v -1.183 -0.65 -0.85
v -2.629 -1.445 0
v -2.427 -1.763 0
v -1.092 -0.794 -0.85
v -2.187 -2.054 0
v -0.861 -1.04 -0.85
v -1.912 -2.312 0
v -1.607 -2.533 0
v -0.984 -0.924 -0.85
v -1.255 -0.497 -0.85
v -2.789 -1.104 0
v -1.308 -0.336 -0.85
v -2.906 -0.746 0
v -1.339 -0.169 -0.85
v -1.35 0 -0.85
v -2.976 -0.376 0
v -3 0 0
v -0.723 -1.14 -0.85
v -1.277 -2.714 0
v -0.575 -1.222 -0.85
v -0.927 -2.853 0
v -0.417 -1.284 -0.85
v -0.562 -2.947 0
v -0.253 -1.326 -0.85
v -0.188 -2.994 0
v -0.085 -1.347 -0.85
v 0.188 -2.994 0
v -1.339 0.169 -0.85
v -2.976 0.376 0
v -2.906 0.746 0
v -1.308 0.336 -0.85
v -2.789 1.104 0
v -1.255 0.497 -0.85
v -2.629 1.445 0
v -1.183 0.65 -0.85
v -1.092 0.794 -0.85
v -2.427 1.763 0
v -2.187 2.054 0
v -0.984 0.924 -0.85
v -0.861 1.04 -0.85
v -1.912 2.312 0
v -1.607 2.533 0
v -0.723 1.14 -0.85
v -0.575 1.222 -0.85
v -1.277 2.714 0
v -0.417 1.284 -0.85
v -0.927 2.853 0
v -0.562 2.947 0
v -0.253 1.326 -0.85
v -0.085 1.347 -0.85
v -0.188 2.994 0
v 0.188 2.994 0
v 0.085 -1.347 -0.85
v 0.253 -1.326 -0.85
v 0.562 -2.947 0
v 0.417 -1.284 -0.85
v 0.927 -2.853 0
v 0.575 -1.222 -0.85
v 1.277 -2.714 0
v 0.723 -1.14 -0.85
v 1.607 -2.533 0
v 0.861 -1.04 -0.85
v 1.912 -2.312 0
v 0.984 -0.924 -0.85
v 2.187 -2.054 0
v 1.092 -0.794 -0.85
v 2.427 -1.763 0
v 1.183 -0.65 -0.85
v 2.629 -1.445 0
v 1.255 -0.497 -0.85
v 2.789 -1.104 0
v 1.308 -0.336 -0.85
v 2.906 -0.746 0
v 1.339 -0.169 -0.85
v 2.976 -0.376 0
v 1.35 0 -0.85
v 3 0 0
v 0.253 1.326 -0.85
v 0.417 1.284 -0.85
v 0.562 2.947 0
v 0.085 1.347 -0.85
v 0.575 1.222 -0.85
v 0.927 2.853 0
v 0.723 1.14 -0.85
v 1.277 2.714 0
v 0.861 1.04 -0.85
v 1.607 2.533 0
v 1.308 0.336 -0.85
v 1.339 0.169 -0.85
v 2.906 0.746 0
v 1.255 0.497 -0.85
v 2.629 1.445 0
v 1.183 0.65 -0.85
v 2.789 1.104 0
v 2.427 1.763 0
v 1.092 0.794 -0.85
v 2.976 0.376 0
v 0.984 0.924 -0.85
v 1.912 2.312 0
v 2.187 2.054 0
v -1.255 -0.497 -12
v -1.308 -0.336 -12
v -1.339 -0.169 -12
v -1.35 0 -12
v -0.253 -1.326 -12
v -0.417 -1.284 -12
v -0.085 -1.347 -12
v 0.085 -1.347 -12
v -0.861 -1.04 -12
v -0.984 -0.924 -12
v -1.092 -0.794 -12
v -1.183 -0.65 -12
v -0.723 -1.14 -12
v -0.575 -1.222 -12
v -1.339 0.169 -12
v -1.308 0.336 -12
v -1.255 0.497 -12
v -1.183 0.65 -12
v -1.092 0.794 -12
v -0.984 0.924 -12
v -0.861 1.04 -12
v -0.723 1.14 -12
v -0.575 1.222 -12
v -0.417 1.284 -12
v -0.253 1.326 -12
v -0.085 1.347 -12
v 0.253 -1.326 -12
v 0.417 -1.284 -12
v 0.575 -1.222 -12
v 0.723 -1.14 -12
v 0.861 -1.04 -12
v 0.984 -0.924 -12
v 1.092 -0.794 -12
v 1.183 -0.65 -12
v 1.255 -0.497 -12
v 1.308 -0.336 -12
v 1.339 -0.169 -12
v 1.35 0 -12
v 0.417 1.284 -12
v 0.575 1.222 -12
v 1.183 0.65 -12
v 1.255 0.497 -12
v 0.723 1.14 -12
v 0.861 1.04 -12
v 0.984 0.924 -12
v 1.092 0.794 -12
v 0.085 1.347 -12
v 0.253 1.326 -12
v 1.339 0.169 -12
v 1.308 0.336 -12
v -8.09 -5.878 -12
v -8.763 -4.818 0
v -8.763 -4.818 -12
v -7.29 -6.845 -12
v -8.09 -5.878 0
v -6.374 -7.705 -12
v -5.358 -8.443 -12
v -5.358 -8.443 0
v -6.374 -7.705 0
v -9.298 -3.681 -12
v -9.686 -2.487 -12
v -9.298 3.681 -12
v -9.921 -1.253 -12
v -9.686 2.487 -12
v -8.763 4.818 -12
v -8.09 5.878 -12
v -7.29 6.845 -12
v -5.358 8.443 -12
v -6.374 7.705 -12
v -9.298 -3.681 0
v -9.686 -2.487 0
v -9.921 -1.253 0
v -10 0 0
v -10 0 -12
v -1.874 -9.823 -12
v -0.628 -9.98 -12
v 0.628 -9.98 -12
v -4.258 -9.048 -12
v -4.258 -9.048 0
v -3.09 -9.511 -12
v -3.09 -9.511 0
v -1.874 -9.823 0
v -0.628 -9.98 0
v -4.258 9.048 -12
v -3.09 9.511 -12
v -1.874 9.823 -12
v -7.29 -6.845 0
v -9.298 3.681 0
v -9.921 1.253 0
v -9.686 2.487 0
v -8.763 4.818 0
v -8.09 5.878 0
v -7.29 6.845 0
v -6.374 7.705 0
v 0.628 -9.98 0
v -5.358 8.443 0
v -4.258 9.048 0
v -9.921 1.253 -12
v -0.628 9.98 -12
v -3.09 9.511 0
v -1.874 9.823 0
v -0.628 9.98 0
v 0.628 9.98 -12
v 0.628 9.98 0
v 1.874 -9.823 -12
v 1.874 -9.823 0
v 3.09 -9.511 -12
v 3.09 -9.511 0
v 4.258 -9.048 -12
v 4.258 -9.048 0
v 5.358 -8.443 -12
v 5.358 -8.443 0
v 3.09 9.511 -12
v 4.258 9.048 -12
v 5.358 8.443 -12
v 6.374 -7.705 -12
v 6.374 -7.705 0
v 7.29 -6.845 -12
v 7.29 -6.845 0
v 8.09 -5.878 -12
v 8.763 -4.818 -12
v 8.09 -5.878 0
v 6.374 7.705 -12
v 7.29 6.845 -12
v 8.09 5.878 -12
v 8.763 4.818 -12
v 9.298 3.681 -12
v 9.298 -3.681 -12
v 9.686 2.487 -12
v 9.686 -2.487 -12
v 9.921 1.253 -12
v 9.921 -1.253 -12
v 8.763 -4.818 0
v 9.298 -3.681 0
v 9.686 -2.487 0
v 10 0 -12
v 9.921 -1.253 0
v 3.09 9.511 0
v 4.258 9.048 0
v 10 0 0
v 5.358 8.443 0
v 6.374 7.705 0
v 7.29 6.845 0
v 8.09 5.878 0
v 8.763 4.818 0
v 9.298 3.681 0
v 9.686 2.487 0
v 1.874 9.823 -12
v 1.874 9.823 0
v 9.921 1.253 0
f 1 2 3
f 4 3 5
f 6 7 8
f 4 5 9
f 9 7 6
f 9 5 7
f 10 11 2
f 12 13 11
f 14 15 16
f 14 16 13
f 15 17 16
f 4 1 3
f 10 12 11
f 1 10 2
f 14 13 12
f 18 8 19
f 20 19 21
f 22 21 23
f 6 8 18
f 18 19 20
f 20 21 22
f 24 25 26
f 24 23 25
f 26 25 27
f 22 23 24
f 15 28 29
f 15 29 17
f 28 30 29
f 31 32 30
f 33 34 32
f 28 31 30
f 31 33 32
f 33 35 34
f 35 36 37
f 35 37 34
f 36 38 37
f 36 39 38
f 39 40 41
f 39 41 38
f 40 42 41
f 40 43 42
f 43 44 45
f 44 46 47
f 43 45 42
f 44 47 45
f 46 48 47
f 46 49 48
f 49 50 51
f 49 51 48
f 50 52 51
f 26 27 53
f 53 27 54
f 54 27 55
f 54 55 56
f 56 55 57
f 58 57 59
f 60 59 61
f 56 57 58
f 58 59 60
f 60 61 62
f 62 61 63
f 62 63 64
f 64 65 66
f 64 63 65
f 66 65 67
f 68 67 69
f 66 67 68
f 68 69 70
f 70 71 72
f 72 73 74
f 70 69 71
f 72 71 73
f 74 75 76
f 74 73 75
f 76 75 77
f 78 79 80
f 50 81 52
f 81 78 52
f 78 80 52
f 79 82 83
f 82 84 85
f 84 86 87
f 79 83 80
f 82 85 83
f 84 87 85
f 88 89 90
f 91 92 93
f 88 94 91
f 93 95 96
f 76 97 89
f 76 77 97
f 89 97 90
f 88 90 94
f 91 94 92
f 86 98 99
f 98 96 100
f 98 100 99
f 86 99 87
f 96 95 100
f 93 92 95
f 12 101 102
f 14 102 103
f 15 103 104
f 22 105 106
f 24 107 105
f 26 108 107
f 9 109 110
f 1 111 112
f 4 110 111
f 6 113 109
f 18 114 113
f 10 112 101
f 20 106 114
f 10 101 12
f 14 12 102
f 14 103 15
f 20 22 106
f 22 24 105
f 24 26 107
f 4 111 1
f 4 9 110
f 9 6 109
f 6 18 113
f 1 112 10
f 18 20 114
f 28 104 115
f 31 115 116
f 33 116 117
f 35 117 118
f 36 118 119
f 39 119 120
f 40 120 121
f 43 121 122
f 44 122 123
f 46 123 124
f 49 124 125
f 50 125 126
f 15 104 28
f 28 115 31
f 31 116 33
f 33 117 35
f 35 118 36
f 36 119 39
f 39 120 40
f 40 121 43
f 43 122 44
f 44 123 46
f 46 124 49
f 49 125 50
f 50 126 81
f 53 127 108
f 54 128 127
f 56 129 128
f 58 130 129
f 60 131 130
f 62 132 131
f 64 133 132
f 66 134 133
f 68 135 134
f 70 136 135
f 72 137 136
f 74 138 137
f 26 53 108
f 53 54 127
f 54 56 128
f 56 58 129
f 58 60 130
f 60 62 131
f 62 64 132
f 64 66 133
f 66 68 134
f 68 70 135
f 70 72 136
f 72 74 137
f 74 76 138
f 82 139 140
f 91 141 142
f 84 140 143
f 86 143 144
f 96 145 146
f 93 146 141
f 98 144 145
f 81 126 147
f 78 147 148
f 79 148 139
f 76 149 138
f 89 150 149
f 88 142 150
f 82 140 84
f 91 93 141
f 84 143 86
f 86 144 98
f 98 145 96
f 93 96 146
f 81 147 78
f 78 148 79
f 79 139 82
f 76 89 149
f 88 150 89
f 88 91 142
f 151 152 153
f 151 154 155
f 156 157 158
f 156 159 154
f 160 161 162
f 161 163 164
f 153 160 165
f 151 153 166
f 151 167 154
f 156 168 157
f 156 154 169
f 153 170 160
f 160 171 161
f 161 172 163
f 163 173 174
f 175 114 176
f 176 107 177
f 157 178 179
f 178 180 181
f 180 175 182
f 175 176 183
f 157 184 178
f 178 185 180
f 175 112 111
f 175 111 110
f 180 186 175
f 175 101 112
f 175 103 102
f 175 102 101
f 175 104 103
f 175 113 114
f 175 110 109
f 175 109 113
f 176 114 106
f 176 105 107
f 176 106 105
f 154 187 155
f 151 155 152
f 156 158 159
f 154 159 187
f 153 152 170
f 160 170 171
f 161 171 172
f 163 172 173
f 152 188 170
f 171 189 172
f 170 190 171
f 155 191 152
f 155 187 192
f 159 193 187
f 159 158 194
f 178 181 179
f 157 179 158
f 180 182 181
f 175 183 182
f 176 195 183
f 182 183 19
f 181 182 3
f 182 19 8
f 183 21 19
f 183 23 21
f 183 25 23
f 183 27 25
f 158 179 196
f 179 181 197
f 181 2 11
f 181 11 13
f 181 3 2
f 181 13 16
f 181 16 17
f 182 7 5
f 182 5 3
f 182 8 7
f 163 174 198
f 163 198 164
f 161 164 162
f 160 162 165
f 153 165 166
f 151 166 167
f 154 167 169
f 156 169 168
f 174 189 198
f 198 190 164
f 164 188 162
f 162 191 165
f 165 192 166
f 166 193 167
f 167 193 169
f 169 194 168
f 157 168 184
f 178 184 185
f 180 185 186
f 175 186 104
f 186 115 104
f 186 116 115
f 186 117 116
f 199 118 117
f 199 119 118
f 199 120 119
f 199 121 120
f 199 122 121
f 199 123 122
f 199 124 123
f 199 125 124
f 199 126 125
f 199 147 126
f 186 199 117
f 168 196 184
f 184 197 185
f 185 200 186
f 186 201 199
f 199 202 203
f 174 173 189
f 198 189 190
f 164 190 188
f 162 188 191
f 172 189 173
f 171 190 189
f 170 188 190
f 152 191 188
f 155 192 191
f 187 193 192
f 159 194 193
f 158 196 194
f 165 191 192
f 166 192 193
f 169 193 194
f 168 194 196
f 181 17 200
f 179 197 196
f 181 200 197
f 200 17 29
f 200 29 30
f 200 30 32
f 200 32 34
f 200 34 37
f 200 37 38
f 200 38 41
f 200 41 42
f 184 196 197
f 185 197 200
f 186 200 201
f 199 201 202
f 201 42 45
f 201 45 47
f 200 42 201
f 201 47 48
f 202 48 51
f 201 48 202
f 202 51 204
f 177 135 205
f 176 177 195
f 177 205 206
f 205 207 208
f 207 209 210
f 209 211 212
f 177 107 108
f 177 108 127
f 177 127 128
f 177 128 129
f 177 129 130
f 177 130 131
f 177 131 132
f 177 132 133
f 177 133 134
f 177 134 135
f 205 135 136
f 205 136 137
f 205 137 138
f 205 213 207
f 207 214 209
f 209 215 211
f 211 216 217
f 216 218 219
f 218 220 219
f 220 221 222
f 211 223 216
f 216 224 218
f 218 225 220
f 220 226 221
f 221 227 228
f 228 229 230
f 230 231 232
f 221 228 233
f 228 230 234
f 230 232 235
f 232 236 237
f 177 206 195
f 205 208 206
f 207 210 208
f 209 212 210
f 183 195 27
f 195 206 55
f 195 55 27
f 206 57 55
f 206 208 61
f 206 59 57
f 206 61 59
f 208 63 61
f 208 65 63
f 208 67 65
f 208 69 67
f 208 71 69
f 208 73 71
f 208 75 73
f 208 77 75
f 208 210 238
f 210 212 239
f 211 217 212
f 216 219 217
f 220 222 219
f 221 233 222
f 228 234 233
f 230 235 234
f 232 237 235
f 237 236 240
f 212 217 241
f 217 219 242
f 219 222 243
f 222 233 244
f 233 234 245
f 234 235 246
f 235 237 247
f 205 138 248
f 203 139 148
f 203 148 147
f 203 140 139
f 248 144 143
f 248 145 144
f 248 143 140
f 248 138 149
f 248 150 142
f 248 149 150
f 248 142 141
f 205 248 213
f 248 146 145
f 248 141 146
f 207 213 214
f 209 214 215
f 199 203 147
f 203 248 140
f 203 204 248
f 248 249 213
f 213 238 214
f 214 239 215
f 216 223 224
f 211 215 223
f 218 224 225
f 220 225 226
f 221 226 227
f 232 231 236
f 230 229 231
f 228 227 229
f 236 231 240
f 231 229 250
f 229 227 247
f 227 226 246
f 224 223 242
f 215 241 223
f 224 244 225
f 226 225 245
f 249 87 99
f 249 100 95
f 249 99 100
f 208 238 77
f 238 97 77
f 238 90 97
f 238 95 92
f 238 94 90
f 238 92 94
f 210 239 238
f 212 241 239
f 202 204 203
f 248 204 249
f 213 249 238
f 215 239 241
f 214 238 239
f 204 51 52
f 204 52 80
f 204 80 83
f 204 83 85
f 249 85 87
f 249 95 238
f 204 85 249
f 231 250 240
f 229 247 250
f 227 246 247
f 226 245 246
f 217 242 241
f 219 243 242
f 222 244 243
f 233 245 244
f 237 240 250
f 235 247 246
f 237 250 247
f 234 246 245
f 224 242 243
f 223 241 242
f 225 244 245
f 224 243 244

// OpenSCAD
$fn = 50;

difference() {
	union() {
		translate(v = [0, 0, -12.0]) {
			cylinder(h = 12, r = 10.0);
		}
	}
	union() {
		translate(v = [0, 0, 0]) {
			rotate(a = [0, 0, 0]) {
				difference() {
					union() {
						translate(v = [0, 0, -15.0]) {
							cylinder(h = 15, r = 1.0);
						}
						translate(v = [0, 0, -0.85]) {
							cylinder(h = 0.85, r1 = 1.35, r2 = 3.0);
						}
						translate(v = [0, 0, -15.0]) {
							cylinder(h = 15, r = 1.35);
						}
						translate(v = [0, 0, -15.0]) {
							cylinder(h = 15, r = 1.0);
						}
					}
					union();
				}
			}
		}
	}
}
